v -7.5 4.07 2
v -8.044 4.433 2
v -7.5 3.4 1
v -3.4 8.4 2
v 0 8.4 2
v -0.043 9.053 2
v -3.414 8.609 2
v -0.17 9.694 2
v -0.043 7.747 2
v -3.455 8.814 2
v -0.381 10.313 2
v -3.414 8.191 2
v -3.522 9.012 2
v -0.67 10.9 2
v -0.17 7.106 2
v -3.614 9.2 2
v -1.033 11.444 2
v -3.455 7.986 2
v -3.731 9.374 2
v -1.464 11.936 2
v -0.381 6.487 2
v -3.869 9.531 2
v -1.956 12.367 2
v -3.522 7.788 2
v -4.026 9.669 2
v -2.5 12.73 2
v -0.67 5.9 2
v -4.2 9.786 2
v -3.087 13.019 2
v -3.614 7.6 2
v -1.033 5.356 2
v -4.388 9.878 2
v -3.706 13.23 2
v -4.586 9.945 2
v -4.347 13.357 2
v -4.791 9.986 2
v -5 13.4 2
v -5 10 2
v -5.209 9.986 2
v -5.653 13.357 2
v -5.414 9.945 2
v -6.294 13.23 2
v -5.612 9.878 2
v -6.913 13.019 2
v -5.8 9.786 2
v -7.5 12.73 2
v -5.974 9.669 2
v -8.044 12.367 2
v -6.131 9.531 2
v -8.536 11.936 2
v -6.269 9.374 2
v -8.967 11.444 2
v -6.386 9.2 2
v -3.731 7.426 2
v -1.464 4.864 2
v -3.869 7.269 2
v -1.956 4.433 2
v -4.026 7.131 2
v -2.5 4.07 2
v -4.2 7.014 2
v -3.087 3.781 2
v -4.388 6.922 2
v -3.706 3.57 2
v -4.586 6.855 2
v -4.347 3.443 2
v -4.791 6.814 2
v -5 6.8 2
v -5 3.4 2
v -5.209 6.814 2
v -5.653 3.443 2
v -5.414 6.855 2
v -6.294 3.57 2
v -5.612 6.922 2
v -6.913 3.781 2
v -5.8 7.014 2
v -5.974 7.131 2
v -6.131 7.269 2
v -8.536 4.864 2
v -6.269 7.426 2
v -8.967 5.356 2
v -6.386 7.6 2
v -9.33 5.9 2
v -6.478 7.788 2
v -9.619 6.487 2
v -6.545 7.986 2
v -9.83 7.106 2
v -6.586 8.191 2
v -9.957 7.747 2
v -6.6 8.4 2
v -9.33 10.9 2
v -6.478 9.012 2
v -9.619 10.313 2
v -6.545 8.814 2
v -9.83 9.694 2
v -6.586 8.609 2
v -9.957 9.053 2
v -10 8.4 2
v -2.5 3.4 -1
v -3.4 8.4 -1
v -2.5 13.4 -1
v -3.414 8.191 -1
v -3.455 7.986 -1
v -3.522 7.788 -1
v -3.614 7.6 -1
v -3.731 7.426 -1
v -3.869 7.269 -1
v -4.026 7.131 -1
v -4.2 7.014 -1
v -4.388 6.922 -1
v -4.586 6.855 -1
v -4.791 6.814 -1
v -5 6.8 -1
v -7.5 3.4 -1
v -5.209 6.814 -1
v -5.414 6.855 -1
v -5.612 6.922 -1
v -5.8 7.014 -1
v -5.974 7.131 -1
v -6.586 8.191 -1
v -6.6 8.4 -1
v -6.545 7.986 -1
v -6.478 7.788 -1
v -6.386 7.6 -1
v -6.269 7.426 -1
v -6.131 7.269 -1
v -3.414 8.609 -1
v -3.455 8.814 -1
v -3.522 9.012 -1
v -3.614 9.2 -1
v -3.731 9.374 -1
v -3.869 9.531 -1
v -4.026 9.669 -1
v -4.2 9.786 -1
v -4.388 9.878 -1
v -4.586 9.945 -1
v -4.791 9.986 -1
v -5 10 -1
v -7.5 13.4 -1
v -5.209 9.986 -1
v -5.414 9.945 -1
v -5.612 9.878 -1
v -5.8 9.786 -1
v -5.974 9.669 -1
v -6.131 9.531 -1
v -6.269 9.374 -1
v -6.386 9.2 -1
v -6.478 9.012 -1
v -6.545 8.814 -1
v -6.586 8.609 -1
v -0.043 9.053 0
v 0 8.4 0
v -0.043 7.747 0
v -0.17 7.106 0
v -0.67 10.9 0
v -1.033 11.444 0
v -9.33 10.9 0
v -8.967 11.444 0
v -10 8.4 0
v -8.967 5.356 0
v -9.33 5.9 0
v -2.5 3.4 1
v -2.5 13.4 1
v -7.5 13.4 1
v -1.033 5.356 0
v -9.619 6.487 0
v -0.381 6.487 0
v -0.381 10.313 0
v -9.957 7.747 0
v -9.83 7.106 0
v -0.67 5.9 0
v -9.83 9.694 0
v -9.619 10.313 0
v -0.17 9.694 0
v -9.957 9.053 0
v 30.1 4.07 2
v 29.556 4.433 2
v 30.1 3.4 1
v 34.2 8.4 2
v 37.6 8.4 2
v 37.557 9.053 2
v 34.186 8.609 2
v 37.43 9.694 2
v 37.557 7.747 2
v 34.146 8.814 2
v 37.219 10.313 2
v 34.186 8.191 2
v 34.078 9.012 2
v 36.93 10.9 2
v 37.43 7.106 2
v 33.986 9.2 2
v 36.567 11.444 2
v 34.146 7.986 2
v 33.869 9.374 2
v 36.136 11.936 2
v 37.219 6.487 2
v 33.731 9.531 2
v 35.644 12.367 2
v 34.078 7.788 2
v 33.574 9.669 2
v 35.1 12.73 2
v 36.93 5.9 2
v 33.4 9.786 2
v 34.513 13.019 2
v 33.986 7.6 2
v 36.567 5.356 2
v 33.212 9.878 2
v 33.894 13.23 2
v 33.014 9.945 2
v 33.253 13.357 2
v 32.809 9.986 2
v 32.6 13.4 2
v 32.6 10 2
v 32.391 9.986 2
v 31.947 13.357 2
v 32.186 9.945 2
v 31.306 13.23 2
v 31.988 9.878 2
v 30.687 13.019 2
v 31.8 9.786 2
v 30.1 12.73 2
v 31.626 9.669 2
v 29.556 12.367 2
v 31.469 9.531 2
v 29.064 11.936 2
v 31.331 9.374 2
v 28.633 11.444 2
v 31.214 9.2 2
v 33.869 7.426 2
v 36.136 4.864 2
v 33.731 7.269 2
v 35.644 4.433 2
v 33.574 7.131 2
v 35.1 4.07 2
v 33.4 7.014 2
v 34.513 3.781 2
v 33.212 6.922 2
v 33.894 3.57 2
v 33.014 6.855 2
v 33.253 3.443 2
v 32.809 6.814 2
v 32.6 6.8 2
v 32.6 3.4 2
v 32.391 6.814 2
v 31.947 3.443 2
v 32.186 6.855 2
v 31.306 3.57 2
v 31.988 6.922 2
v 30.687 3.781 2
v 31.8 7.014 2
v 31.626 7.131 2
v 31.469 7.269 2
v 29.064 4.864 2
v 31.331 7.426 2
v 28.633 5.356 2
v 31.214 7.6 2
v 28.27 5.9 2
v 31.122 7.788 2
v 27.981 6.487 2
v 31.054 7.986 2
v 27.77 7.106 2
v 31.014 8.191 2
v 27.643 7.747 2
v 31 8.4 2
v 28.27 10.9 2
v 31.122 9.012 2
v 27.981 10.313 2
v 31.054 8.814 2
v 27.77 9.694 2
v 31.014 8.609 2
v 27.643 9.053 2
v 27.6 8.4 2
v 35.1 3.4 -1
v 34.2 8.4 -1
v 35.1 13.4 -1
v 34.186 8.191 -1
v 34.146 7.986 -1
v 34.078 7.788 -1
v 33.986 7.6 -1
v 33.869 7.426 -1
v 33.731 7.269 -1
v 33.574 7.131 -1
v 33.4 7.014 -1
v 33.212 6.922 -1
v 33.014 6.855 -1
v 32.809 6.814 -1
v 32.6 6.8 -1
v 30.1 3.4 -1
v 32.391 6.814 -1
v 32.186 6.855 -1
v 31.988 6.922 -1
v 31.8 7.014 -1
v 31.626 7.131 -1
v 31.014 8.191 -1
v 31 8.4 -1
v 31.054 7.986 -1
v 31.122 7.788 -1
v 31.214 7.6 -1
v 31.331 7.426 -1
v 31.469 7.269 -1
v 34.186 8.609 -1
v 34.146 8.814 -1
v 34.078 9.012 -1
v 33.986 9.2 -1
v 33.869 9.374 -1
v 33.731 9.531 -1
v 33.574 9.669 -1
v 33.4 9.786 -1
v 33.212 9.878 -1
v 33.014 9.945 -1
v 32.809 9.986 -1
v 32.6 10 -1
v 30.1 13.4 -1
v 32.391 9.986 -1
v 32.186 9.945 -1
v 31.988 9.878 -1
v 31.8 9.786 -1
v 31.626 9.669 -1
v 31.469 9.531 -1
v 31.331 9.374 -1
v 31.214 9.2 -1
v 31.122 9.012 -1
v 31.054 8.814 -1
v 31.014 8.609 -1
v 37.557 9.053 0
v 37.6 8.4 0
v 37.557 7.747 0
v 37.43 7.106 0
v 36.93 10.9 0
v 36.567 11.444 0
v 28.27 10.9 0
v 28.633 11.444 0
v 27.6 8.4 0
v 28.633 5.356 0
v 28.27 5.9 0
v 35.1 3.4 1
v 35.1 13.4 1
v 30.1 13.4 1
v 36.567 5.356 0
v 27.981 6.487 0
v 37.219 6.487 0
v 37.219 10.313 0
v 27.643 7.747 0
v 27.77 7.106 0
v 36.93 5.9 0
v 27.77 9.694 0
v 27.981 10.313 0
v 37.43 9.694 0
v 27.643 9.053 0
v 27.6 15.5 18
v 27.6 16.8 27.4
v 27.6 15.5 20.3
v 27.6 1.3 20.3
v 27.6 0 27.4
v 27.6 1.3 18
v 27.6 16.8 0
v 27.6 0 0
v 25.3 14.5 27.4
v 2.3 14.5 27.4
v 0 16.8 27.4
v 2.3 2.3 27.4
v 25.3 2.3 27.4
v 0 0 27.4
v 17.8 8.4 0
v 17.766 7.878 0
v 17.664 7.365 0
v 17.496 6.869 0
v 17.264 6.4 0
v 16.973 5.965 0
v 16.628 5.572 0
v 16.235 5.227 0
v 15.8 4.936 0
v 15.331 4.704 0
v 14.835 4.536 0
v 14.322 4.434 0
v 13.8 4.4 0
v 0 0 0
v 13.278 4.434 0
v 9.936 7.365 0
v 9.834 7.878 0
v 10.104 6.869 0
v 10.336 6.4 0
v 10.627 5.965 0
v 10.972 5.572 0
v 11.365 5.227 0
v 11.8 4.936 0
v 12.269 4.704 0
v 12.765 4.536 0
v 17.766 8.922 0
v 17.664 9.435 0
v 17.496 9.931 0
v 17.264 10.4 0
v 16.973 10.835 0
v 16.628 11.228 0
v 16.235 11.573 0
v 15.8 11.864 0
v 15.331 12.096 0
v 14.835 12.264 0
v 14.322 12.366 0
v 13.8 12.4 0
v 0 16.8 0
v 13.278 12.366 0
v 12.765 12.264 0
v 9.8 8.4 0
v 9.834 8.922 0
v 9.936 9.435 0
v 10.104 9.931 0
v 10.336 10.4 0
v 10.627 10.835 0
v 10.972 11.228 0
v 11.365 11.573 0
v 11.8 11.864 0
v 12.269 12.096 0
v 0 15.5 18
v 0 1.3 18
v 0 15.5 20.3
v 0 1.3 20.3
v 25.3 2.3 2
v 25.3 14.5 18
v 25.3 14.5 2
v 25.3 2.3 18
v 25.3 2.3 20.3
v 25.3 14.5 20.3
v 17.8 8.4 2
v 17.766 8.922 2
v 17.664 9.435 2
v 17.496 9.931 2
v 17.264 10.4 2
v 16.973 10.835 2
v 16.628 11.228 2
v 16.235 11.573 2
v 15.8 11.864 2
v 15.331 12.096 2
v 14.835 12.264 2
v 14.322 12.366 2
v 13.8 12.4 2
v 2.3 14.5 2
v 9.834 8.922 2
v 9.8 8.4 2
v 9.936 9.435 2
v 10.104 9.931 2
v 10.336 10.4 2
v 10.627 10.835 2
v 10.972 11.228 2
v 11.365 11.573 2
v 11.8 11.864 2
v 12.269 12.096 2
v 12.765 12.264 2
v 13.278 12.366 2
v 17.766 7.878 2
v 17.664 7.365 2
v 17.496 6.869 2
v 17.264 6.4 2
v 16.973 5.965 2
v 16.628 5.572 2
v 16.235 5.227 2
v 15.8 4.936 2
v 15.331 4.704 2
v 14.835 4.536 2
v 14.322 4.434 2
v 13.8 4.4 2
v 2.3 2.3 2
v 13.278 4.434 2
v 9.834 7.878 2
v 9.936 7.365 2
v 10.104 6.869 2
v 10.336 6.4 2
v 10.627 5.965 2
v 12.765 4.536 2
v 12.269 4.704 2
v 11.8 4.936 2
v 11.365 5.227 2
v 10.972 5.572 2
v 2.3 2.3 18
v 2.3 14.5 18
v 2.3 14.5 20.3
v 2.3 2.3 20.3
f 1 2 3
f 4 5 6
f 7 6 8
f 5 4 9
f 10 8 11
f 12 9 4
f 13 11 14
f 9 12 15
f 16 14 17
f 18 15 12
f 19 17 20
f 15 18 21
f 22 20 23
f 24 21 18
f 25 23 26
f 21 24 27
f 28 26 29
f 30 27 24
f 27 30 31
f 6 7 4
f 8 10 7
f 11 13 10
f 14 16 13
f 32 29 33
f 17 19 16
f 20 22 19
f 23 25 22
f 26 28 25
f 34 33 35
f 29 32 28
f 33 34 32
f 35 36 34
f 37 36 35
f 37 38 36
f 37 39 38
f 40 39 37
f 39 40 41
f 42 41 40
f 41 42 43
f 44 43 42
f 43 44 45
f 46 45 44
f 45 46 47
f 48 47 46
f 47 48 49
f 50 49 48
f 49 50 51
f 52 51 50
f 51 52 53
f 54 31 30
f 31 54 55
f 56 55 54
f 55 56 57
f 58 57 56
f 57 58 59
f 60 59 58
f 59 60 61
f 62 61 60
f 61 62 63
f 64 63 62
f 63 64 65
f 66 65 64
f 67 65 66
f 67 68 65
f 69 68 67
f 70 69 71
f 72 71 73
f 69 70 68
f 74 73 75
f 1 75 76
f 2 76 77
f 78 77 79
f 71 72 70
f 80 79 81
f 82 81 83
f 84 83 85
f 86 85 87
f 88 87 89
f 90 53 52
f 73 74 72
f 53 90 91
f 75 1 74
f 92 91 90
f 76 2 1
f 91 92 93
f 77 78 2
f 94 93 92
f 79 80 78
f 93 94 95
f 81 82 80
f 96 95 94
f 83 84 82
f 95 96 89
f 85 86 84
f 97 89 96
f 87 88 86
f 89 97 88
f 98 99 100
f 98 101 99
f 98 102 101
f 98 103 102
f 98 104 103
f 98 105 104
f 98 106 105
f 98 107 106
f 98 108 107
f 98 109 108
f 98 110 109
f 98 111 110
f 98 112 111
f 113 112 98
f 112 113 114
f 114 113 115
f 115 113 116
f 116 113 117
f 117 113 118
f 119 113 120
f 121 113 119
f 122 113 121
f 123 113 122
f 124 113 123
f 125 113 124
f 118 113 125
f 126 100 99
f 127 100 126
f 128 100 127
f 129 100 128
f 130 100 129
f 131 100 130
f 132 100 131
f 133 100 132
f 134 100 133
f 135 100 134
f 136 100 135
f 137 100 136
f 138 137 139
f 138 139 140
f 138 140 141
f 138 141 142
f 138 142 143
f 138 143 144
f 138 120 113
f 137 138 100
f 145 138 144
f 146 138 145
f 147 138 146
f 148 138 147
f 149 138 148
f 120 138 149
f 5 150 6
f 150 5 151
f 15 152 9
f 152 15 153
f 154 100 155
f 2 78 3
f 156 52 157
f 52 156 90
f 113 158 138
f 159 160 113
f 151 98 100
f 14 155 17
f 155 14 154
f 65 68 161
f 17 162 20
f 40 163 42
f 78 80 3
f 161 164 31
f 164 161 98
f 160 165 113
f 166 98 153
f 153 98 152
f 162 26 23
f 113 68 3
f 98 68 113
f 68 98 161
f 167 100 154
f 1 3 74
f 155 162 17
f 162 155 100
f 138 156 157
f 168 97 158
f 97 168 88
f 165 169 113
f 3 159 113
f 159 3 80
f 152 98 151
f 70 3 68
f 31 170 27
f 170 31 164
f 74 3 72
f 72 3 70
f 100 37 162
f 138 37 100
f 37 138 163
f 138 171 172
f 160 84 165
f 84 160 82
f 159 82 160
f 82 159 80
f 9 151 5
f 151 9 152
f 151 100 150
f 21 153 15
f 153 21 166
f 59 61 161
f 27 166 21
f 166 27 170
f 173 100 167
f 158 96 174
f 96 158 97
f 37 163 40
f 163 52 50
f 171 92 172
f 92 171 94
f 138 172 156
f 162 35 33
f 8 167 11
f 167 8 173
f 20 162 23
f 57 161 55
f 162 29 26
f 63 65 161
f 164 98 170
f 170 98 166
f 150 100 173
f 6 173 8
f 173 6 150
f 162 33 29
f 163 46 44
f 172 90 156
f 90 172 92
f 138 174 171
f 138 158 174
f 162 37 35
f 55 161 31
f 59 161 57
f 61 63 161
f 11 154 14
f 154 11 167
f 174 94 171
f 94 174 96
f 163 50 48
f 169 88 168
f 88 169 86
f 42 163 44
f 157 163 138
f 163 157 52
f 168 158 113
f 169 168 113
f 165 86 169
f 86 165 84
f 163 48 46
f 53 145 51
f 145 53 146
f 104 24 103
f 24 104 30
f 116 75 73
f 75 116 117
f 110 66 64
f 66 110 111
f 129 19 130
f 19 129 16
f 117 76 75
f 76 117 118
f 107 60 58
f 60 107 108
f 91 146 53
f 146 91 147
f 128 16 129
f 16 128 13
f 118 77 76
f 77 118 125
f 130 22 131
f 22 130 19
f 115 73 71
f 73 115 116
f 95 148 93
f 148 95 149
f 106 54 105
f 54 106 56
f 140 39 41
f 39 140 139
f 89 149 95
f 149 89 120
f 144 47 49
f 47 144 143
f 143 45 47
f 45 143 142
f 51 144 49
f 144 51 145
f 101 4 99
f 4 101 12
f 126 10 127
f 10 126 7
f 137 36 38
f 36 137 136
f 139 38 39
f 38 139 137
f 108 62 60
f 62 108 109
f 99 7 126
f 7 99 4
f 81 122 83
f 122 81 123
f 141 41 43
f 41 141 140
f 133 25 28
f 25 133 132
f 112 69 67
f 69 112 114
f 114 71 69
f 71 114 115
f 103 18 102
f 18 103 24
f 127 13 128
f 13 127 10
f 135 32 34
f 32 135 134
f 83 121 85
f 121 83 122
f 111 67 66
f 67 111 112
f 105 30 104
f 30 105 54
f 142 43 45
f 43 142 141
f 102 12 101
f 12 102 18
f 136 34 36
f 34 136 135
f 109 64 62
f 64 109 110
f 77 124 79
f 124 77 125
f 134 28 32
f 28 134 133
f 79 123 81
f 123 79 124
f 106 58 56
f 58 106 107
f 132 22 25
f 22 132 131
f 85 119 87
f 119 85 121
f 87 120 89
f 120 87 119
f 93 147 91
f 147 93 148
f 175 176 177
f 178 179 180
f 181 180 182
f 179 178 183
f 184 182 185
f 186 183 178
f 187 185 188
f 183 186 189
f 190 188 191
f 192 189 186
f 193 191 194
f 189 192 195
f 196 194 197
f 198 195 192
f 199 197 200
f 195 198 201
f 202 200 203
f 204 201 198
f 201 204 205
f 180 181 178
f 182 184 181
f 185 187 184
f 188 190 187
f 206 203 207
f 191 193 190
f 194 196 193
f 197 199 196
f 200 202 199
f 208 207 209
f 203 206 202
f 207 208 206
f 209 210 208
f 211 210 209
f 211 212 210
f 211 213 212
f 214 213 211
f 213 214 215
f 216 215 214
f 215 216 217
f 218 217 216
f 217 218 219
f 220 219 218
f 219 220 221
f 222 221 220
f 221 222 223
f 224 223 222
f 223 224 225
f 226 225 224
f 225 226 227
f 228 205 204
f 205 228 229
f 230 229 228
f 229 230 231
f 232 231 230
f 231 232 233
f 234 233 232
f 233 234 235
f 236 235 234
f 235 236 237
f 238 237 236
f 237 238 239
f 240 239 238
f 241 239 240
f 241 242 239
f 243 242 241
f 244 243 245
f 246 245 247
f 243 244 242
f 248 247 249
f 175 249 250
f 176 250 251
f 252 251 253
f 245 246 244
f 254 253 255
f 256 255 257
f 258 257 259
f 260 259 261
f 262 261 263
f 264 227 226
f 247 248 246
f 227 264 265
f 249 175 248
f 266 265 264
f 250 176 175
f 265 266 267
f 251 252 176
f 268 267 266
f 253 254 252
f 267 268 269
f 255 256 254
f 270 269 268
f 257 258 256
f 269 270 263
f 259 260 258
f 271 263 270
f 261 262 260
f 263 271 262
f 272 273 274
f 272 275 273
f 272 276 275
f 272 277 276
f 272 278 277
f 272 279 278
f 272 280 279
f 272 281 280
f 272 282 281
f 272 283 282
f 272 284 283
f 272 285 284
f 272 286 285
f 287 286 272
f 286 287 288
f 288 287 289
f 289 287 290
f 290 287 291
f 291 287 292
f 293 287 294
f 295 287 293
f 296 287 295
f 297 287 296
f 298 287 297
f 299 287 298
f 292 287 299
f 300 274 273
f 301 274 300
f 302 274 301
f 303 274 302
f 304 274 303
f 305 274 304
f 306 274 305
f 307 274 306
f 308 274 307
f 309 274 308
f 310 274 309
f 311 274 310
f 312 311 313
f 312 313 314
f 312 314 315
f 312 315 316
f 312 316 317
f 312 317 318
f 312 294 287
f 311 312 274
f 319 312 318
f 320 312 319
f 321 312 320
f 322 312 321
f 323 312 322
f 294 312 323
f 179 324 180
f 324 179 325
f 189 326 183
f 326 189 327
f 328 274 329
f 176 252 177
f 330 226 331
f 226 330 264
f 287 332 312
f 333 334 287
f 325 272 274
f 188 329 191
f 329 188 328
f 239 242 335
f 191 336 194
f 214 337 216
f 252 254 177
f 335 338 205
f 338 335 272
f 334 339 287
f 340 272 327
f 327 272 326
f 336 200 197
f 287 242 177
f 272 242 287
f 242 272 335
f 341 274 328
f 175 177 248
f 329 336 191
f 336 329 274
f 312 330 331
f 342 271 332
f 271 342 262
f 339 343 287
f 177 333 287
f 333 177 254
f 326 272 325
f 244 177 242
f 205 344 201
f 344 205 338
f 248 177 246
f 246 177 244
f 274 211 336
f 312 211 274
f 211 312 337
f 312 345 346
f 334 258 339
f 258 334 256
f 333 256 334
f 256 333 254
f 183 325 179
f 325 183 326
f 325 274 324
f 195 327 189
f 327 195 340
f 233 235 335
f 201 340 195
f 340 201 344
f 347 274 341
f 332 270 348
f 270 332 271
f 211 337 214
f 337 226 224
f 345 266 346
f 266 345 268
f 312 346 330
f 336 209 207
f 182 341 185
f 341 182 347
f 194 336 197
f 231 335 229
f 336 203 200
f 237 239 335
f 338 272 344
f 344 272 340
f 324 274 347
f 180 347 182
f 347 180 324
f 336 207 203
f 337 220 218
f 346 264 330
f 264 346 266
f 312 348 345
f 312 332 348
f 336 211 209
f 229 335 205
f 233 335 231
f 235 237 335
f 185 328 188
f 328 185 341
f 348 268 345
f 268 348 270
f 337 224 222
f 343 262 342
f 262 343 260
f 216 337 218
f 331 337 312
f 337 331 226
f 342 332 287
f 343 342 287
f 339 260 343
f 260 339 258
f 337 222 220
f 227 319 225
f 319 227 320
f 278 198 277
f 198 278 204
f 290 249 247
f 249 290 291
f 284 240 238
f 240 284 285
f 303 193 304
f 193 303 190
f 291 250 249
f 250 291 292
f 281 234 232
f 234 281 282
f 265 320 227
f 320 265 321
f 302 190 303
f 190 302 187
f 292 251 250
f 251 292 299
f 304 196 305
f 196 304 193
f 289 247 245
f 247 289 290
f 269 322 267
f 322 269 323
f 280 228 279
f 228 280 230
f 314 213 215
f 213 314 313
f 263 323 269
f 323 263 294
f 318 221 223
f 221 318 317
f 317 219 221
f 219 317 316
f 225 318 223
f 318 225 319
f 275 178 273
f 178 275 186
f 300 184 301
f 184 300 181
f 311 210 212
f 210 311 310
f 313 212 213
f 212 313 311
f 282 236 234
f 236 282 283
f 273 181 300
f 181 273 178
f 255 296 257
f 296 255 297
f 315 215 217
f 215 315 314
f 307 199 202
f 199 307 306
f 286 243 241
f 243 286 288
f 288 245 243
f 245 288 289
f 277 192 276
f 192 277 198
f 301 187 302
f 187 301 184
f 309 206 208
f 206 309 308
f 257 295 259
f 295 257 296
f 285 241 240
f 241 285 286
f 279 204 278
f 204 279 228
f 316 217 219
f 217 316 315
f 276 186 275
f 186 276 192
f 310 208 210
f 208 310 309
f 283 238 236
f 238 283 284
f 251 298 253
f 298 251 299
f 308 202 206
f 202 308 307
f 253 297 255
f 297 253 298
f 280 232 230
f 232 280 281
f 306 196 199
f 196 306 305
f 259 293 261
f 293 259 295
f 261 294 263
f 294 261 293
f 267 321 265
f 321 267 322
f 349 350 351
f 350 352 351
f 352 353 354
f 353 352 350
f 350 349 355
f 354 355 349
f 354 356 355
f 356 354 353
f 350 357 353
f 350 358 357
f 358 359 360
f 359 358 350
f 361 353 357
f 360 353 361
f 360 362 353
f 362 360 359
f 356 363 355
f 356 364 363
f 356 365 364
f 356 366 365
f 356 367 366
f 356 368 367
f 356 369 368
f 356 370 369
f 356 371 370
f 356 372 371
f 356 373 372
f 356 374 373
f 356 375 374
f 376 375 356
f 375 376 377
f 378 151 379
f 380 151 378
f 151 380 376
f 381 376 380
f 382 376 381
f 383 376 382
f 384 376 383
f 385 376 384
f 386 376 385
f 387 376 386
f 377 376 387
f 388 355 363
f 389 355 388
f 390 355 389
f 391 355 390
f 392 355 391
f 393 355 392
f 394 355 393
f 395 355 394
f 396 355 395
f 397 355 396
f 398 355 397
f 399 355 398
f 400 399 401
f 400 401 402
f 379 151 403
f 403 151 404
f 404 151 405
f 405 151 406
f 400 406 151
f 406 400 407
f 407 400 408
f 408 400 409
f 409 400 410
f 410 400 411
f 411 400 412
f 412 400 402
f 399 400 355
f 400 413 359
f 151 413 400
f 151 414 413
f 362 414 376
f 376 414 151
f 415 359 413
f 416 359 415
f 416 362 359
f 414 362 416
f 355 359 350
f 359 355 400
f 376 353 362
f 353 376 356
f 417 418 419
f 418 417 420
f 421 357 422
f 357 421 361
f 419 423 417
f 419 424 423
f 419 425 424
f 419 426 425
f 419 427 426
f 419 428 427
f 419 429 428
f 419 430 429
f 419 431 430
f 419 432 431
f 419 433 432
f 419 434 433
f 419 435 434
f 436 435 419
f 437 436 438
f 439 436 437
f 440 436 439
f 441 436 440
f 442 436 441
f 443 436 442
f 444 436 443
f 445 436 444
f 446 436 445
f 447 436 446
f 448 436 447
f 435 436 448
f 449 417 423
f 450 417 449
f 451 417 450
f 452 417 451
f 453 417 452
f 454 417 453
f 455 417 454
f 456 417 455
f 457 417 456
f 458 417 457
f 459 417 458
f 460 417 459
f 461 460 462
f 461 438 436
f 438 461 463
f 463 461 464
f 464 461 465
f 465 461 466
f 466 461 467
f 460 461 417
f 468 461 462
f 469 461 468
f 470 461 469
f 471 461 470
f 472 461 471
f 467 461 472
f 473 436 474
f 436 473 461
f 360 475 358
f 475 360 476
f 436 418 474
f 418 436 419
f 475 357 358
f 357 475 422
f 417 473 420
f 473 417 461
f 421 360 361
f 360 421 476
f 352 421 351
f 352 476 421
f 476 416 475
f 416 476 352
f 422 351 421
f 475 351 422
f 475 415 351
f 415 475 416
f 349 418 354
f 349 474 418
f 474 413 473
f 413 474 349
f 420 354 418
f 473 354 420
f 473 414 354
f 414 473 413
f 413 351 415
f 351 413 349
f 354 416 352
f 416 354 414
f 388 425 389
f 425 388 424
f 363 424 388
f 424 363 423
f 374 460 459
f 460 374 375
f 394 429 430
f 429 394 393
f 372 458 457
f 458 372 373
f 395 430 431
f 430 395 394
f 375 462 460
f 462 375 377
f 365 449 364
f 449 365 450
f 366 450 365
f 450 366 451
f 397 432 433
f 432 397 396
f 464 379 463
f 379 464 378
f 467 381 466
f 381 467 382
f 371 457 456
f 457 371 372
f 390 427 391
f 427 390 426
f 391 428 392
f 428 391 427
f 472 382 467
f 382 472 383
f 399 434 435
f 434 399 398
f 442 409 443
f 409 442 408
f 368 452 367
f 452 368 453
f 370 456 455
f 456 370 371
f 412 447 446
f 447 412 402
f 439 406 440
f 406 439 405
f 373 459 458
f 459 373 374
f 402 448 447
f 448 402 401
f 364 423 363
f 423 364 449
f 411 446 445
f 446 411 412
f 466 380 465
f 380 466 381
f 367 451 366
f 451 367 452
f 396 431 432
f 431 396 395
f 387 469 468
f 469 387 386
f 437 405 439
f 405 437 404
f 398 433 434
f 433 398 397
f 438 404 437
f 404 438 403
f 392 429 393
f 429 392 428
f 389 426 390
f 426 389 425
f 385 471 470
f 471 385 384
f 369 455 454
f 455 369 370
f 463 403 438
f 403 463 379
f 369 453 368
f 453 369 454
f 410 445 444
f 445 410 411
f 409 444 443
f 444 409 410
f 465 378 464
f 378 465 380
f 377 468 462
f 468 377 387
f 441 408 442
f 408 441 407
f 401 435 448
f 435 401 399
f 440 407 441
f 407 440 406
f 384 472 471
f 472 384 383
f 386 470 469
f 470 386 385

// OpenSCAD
// Držák serva - univerzální úchyt pro micro servo (9g)
// Typické rozměry: servo 23 x 12.2 x 25.4 mm
// Material: PET-G, 20% výplň, 3 perimetry

$fn = 48;

// Rozměry serva (SG90 / MG90S)
servo_delka = 23;
servo_sirka = 12.2;
servo_vyska = 25.4;
servo_priruba_sirka = 32.5;
servo_priruba_vyska = 2;
servo_priruba_pozice = 16; // od spodku

// Rozměry držáku
tl = 2;
vule = 0.3; // vůle kolem serva

module drzak_serva() {
    difference() {
        union() {
            // Základna
            cube([servo_delka + 2*tl + 2*vule,
                  servo_sirka + 2*tl + 2*vule,
                  servo_vyska + tl], center=false);

            // Montážní uška
            for (x = [-1, 1]) {
                translate([
                    (servo_delka + 2*tl + 2*vule)/2 + x * ((servo_delka + 2*tl + 2*vule)/2 + 5),
                    (servo_sirka + 2*tl + 2*vule)/2,
                    0])
                    montazni_usko();
            }
        }

        // Dutina pro servo
        translate([tl + vule, tl + vule, tl])
            cube([servo_delka, servo_sirka, servo_vyska + 1]);

        // Slot pro přírubu serva
        translate([-2, tl + vule - 1, tl + servo_priruba_pozice])
            cube([servo_priruba_sirka + 8, servo_sirka + 2, servo_priruba_vyska + vule]);

        // Otvor pro kabely (spodek)
        translate([(servo_delka + 2*tl + 2*vule)/2, (servo_sirka + 2*tl + 2*vule)/2, -1])
            cylinder(d=8, h=tl + 2);

        // Otvor pro hřídel serva (nahoře)
        translate([tl + vule + 6, (servo_sirka + 2*tl + 2*vule)/2, servo_vyska + tl - 1])
            cylinder(d=10, h=5);
    }
}

module montazni_usko() {
    difference() {
        hull() {
            translate([0, 0, 0])
                cylinder(d=10, h=tl);
            translate([0, 0, 0])
                cube([5, 10, tl], center=true);
        }
        translate([0, 0, -1])
            cylinder(d=3.2, h=tl + 2); // M3
    }
}

drzak_serva();
